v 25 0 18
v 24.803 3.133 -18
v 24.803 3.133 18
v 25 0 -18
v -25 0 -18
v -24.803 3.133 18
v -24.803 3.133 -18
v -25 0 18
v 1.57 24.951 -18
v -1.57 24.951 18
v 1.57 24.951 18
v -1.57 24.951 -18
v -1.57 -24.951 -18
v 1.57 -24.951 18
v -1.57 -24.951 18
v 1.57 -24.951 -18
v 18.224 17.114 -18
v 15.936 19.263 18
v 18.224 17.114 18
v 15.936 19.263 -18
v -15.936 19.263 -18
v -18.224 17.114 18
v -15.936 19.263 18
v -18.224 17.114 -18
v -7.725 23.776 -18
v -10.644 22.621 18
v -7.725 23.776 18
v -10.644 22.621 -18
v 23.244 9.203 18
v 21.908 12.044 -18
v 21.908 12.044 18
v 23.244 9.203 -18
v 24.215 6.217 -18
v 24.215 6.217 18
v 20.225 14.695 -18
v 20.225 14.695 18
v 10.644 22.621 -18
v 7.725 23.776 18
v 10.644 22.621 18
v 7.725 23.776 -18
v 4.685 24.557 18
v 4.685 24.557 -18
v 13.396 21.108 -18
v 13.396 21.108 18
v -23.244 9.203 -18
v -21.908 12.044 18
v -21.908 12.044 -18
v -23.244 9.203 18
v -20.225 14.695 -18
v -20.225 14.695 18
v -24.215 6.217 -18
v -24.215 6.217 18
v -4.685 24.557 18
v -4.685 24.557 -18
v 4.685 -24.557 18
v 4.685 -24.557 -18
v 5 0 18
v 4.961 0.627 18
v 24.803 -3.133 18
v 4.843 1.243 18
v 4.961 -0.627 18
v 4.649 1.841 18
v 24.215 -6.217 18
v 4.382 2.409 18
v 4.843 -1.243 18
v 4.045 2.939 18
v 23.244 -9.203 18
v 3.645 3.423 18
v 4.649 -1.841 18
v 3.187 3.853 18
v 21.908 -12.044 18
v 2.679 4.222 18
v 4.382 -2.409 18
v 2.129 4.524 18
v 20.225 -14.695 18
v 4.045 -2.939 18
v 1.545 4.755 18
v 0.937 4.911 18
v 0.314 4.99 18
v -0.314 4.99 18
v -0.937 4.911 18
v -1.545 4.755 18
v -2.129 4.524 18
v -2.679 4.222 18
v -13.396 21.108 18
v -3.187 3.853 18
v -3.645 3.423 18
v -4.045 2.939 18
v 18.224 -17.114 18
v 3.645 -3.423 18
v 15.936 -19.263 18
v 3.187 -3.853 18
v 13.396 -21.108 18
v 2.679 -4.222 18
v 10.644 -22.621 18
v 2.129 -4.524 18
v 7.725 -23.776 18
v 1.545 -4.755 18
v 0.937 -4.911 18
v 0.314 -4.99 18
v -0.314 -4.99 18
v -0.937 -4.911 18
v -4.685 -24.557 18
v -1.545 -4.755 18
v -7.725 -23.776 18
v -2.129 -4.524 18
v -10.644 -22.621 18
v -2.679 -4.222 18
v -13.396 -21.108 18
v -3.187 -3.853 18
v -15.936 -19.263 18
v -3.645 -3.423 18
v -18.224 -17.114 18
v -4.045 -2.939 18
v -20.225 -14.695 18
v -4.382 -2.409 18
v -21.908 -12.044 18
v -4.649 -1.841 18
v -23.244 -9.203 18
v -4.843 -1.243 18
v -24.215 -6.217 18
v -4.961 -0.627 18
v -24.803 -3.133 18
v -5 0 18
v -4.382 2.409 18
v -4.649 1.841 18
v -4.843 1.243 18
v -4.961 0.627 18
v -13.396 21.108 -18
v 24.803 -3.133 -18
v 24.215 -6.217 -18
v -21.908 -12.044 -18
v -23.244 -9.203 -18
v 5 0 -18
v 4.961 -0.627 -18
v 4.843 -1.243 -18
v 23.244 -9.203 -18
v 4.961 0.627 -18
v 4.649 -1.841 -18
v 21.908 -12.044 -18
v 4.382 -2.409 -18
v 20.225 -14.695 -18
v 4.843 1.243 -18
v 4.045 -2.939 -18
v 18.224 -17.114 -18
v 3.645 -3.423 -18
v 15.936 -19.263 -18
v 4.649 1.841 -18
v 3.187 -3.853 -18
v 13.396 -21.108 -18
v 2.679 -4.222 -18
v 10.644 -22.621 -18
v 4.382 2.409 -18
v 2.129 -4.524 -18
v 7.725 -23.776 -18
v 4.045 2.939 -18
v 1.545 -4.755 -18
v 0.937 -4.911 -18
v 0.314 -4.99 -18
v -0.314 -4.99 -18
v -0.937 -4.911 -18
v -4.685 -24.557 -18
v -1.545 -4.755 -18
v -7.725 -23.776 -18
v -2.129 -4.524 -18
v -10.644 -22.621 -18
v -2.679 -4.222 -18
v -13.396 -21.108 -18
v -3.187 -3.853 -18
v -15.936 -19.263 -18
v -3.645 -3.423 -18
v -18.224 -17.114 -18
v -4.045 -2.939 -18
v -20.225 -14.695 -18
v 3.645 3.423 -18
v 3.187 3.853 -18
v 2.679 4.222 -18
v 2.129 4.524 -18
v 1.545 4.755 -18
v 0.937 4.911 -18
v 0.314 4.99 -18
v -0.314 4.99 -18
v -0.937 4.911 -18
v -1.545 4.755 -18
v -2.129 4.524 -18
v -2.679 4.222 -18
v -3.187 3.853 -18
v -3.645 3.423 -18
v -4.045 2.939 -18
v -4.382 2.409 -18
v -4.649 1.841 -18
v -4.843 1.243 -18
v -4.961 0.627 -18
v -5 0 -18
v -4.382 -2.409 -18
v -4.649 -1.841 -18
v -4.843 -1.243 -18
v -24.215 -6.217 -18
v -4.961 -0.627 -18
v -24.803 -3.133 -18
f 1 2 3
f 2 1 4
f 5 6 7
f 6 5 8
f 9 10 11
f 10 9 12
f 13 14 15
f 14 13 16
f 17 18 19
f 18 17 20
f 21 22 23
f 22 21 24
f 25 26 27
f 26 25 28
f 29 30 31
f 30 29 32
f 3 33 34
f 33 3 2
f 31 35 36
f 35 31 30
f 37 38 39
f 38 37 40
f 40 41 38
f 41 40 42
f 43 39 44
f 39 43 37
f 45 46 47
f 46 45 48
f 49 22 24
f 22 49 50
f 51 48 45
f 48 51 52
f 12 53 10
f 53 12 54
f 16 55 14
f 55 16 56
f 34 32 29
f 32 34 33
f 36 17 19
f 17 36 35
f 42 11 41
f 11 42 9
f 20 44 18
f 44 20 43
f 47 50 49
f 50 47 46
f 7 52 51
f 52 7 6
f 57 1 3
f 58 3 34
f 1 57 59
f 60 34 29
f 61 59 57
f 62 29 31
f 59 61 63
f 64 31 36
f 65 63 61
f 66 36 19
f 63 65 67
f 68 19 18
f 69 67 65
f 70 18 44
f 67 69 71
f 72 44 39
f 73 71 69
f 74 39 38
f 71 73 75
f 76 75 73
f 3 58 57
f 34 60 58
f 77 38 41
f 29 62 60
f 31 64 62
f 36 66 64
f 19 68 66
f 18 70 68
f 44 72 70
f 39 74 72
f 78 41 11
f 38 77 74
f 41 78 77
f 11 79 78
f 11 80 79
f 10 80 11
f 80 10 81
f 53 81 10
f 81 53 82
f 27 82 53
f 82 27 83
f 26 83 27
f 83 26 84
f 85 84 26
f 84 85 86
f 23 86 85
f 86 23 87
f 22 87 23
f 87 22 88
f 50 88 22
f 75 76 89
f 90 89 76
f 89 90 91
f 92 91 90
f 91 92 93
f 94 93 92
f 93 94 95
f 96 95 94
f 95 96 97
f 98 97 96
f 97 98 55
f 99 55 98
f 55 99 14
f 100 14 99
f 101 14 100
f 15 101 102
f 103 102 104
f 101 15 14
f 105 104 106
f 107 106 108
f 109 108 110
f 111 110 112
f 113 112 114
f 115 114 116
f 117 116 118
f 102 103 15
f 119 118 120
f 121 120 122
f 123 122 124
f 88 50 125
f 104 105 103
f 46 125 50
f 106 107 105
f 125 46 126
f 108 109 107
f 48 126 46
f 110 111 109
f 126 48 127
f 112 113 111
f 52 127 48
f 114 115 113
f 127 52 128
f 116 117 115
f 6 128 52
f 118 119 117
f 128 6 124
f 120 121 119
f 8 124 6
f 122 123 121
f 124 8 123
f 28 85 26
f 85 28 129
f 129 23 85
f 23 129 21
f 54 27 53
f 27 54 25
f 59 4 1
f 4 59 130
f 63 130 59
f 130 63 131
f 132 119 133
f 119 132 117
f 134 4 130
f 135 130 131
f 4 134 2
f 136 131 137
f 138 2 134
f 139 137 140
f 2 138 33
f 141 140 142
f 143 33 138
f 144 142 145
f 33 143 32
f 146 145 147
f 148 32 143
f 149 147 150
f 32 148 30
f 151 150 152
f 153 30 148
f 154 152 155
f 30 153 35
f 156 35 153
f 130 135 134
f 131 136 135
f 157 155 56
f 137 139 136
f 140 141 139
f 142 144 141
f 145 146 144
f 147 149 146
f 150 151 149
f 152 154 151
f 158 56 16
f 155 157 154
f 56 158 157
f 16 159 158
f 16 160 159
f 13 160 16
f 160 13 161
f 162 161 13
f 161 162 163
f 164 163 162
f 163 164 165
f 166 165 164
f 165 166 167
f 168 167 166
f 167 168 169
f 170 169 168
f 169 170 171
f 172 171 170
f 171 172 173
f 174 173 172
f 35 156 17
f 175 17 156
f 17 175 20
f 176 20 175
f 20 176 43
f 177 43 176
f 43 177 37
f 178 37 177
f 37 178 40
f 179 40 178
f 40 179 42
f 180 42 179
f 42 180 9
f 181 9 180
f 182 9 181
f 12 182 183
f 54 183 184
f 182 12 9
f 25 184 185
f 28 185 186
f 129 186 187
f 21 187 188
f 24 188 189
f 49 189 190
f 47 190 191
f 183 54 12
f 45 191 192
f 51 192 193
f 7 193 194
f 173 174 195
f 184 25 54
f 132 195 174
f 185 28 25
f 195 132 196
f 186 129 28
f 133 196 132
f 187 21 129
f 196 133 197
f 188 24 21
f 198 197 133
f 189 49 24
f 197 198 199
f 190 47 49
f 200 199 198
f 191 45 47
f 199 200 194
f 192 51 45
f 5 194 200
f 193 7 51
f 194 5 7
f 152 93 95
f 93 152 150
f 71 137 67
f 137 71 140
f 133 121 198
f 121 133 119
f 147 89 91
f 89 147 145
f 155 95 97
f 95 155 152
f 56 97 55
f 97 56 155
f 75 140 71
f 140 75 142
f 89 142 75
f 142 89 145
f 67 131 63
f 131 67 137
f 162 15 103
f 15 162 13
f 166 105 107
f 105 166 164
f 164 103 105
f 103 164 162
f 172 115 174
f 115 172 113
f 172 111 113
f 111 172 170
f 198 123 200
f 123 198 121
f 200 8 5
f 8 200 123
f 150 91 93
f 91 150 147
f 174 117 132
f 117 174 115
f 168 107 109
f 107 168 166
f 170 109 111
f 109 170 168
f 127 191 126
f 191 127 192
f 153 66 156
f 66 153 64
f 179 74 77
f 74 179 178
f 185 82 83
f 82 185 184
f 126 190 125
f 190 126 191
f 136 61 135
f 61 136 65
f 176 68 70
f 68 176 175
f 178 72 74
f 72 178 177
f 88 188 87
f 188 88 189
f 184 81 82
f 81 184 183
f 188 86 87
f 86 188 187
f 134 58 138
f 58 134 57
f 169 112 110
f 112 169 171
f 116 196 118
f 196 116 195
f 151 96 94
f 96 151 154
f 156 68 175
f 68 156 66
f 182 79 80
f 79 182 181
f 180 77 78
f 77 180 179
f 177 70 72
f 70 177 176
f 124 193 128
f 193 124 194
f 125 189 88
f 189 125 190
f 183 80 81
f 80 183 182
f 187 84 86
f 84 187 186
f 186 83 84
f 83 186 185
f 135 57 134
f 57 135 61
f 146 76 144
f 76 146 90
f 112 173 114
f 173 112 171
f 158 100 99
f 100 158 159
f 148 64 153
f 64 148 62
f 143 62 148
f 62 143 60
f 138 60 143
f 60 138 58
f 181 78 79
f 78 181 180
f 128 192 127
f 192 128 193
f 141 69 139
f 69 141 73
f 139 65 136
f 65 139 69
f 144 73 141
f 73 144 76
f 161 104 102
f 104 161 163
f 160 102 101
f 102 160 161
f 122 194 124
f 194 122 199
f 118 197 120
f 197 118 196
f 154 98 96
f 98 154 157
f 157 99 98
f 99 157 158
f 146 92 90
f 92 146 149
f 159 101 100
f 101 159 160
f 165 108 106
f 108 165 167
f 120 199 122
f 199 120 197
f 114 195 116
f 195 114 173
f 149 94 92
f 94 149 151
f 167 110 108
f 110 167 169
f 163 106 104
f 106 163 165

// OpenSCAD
$fn = 50;


difference() {
	union() {
		translate(v = [0, 0, -18.0000000000]) {
			cylinder(h = 36, r = 25.0000000000);
		}
	}
	union() {
		translate(v = [0, 0, -100.0000000000]) {
			cylinder(h = 200, r = 5.0000000000);
		}
	}
}
